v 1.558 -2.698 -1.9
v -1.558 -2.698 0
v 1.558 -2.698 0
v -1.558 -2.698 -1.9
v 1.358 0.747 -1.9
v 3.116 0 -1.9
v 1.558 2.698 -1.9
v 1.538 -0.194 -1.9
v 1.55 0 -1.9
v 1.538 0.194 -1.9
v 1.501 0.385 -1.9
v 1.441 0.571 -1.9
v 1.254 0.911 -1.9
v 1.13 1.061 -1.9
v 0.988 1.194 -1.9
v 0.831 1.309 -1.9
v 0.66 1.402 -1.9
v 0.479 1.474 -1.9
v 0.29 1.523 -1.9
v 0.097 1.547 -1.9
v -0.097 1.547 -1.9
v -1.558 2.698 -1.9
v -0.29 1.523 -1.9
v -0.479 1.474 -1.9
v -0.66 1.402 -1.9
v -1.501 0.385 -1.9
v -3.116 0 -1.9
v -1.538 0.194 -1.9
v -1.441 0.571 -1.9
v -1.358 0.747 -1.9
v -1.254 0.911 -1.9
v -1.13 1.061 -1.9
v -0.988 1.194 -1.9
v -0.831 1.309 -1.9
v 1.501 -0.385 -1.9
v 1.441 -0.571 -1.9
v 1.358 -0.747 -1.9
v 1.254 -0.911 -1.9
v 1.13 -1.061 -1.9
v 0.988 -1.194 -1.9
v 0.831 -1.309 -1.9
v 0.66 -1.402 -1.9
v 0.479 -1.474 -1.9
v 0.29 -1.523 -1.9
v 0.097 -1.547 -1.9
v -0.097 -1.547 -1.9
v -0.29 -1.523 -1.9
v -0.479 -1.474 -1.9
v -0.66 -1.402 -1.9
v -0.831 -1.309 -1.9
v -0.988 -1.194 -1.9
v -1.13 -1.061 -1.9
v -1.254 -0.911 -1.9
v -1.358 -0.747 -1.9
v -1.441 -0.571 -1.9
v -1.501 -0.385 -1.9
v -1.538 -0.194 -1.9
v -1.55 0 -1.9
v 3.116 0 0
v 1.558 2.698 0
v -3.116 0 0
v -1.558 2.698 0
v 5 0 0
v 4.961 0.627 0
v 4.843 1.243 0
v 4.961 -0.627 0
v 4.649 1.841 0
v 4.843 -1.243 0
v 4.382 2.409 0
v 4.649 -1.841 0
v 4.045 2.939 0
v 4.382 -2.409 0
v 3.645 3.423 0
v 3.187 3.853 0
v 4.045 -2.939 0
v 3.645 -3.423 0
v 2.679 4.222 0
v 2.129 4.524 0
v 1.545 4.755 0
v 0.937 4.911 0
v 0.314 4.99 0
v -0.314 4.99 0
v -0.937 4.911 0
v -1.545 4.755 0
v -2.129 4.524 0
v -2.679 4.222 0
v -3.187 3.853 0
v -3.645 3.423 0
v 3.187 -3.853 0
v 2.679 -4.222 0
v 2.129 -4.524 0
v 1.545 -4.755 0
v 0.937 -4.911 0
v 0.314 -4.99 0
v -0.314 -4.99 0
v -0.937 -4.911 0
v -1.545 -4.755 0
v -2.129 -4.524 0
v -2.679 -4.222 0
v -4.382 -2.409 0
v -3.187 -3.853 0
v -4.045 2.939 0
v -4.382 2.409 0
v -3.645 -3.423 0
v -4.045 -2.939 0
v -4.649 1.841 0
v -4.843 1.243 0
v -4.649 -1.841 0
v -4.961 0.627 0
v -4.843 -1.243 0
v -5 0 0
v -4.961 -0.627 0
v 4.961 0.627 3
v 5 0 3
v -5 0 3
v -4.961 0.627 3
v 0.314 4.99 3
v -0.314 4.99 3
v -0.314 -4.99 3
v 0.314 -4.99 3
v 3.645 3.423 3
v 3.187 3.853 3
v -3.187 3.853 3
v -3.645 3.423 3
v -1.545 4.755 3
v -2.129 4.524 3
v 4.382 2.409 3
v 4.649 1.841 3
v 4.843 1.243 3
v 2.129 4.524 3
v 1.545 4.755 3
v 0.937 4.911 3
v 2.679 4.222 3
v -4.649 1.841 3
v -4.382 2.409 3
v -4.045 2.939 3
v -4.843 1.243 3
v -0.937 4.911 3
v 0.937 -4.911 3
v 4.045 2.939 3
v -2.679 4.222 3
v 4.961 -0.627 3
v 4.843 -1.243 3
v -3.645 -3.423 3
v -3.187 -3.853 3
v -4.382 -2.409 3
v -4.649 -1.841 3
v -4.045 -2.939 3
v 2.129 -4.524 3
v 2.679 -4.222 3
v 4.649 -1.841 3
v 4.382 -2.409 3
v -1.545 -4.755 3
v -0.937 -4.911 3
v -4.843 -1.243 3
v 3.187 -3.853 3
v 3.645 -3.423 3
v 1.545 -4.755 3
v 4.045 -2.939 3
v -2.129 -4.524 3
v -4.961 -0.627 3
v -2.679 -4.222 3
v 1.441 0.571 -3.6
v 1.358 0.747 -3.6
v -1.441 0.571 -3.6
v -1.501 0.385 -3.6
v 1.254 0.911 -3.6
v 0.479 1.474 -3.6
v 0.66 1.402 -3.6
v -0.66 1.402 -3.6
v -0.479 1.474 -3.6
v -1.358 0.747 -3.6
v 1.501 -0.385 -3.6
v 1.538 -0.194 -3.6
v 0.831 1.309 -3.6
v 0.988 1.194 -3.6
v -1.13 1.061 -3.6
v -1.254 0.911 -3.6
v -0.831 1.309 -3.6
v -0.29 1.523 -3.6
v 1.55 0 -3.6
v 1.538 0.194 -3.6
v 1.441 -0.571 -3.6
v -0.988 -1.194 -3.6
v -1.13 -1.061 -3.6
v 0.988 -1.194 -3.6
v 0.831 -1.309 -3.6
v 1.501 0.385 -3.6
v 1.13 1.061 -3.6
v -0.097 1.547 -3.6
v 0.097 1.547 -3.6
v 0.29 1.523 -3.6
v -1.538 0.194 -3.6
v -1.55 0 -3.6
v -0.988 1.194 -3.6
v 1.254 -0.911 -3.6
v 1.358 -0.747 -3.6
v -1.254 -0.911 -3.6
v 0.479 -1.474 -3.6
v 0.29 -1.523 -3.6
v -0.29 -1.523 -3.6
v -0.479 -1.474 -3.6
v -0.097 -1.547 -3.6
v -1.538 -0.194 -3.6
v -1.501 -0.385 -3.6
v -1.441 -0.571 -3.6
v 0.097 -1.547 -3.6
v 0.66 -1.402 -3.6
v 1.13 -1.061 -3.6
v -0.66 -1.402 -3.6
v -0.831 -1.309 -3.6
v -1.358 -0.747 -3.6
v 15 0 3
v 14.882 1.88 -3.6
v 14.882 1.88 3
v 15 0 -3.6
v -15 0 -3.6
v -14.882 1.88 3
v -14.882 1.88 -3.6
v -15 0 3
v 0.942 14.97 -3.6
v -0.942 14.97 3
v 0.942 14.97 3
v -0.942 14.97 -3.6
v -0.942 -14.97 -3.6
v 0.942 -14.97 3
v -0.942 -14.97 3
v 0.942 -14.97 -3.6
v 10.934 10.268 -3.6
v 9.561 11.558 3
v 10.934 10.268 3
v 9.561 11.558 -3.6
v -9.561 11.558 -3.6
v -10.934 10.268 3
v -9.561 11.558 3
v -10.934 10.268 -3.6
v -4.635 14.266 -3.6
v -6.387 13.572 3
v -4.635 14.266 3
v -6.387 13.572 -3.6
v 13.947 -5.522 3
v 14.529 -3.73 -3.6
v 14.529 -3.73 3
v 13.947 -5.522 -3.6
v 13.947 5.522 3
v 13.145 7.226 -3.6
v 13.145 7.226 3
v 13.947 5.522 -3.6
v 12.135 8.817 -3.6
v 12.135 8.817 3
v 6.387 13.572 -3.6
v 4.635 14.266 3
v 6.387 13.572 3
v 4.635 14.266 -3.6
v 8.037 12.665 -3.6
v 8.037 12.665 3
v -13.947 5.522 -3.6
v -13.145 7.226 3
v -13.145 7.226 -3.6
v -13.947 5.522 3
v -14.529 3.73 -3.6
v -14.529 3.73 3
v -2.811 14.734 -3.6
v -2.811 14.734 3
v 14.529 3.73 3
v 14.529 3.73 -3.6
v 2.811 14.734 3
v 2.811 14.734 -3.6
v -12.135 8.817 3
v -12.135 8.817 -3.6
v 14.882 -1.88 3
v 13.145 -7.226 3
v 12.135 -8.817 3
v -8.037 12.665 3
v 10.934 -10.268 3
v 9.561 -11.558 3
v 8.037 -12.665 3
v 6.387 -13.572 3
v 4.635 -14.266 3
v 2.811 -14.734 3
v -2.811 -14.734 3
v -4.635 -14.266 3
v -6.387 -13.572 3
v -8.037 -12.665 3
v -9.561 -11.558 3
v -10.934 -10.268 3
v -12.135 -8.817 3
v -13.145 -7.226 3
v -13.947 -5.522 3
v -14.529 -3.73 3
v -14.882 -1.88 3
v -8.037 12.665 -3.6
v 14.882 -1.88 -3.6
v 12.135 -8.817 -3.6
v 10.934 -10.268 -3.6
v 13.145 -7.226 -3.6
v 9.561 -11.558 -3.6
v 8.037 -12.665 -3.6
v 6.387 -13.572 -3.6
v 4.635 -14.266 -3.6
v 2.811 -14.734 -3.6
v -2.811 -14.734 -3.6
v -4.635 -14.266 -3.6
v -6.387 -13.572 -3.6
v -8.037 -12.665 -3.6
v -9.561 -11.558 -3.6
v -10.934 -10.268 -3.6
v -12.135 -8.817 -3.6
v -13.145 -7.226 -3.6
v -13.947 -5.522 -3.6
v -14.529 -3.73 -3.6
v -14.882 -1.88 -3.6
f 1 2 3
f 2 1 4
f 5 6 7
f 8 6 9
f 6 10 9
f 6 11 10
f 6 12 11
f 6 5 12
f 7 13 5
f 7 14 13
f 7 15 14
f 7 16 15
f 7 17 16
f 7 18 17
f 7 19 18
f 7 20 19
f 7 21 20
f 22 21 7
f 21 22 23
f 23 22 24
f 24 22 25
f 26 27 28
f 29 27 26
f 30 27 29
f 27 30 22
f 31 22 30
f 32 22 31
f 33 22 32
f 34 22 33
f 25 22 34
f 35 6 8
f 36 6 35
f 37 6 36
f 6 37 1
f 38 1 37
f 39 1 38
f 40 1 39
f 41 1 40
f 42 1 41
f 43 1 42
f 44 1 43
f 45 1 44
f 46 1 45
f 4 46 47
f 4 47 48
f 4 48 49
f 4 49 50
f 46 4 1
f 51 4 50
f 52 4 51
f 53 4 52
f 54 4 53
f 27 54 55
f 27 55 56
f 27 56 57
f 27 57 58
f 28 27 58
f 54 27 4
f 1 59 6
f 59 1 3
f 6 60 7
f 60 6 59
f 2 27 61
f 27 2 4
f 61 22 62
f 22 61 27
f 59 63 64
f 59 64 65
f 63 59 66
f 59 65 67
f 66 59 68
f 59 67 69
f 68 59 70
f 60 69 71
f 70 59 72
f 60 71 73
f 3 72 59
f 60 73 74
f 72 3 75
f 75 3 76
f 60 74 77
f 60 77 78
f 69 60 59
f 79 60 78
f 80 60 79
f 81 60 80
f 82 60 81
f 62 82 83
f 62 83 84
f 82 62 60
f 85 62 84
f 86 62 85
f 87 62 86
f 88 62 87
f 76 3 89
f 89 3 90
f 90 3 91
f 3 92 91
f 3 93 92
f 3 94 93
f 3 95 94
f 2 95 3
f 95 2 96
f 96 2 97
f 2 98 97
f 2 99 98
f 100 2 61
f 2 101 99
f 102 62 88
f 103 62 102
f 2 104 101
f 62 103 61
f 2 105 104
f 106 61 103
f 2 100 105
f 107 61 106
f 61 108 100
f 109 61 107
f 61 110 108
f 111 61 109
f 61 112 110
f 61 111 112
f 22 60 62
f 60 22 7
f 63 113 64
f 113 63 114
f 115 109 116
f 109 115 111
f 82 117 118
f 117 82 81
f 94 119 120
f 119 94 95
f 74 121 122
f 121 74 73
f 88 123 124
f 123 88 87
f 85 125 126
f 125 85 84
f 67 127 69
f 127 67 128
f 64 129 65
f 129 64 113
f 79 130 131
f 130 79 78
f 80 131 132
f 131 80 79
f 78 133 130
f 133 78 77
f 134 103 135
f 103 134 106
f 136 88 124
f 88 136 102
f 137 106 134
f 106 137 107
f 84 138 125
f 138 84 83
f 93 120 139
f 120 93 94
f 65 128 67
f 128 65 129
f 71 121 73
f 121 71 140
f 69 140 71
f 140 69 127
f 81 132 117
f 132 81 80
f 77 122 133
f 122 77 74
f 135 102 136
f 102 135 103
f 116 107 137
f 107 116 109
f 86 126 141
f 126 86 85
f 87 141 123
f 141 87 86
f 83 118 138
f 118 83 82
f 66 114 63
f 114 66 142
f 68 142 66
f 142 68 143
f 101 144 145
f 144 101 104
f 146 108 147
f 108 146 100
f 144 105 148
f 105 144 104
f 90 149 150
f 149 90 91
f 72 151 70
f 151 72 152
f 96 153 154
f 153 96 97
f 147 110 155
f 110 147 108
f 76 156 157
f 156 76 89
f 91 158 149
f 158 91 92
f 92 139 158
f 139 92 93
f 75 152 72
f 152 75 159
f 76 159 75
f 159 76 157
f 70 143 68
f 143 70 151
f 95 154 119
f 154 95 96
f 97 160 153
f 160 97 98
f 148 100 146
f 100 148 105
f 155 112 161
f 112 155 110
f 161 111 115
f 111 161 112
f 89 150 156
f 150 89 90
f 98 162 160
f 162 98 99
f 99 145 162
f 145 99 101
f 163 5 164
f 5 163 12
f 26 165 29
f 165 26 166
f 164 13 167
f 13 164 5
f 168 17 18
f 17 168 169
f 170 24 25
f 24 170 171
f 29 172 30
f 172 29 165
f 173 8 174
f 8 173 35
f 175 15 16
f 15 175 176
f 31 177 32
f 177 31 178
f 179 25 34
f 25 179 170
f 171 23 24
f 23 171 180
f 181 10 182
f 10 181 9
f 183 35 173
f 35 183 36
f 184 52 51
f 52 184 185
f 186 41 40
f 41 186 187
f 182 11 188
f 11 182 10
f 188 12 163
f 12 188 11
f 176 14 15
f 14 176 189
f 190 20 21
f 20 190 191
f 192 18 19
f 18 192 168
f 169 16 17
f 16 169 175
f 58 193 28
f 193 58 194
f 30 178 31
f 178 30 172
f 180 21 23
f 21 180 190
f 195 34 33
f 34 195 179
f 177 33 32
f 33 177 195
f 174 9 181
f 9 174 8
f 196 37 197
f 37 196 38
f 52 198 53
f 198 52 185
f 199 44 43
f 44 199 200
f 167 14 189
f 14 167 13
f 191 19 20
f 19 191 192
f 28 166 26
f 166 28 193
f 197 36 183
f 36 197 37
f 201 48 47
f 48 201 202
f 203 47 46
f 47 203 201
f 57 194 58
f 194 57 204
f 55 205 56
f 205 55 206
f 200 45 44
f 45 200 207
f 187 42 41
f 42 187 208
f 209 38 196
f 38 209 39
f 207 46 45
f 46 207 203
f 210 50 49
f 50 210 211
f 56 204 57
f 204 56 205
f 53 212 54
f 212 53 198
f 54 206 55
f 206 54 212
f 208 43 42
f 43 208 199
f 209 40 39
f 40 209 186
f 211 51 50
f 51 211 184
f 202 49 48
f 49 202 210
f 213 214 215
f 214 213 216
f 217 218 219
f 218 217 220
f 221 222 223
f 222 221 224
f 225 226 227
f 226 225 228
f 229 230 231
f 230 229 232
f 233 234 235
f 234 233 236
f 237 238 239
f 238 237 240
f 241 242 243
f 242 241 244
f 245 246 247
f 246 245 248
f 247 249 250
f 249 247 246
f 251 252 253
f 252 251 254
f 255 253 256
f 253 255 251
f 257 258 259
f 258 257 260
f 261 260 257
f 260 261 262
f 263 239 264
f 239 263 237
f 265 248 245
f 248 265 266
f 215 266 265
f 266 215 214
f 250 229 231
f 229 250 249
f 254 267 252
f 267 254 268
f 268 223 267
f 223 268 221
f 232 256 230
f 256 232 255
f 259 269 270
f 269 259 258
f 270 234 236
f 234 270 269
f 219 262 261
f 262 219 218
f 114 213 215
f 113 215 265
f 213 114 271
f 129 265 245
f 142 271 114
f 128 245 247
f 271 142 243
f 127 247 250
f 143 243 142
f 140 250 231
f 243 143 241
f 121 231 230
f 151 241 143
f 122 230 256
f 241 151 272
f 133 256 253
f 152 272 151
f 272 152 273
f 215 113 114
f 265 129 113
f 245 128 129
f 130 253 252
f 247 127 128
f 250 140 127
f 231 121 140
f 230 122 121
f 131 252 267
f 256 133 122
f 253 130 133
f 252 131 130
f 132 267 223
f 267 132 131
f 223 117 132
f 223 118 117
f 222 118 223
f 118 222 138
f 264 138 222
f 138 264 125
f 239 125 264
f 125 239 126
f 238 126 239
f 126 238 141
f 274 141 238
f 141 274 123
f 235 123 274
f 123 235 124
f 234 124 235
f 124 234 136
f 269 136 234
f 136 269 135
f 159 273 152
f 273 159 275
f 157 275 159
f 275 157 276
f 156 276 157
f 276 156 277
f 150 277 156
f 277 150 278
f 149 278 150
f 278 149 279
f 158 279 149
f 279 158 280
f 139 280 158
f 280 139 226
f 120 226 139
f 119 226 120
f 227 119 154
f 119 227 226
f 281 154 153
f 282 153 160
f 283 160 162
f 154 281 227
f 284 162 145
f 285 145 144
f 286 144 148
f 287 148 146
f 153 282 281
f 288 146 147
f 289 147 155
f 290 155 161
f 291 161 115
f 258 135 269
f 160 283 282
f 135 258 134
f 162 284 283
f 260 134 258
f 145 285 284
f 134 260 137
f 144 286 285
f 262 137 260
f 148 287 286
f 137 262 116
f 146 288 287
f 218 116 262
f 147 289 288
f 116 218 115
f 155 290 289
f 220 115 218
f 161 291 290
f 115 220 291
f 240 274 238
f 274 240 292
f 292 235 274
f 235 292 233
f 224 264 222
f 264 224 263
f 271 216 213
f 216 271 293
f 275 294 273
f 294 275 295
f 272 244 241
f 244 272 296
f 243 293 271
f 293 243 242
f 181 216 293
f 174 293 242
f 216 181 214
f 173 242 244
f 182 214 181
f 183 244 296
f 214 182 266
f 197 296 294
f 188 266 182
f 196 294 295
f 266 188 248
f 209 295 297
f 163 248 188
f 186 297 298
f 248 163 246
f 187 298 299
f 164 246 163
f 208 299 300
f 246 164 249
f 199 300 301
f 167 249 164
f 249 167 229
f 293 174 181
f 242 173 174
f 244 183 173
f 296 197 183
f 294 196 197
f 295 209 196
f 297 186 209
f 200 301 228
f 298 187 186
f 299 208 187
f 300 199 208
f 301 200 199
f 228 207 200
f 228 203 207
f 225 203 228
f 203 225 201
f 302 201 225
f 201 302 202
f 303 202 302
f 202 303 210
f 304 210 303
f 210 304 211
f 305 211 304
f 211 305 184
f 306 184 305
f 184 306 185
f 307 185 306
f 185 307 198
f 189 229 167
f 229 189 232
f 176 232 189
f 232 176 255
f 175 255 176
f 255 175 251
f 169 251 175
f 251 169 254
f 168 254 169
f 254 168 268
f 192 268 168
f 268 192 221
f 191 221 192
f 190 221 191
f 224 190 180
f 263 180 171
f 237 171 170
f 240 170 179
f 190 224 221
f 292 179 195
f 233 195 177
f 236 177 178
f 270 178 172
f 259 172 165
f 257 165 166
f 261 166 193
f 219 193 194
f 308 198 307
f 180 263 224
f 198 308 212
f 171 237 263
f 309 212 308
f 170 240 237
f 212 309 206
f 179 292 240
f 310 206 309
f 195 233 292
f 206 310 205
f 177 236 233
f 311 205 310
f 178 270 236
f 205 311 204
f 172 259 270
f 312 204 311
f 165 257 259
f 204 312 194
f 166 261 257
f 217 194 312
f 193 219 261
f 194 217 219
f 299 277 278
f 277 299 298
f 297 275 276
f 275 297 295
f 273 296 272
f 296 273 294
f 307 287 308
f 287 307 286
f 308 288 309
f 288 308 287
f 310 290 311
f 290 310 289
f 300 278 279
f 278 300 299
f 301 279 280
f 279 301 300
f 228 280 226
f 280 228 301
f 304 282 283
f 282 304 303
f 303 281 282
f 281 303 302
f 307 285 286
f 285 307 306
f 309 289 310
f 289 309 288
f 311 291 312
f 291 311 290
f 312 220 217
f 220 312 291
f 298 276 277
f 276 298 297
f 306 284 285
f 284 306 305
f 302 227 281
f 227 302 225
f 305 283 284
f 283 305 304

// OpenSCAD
$fn = 50;

difference() {
	union() {
		translate(v = [0, 0, -3.5999999999999996]) {
			cylinder(h = 6.6, r = 15.0);
		}
	}
	union() {
		translate(v = [0, 0, 0]) {
			rotate(a = [0, 0, 0]) {
				difference() {
					union() {
						translate(v = [0, 0, -1.9]) {
							linear_extrude(height = 1.9) {
								polygon(points = [[3.1158, 0.0], [1.5579000000000005, 2.698361953111554], [-1.5578999999999994, 2.6983619531115544], [-3.1158, 3.815754496783323e-16], [-1.5579000000000014, -2.6983619531115535], [1.557899999999998, -2.6983619531115552]]);
							}
						}
					}
					union();
				}
			}
		}
		#cylinder(h = 3, r = 5.0);
		#translate(v = [0, 0, -100.0]) {
			cylinder(h = 200, r = 1.55);
		}
	}
}
